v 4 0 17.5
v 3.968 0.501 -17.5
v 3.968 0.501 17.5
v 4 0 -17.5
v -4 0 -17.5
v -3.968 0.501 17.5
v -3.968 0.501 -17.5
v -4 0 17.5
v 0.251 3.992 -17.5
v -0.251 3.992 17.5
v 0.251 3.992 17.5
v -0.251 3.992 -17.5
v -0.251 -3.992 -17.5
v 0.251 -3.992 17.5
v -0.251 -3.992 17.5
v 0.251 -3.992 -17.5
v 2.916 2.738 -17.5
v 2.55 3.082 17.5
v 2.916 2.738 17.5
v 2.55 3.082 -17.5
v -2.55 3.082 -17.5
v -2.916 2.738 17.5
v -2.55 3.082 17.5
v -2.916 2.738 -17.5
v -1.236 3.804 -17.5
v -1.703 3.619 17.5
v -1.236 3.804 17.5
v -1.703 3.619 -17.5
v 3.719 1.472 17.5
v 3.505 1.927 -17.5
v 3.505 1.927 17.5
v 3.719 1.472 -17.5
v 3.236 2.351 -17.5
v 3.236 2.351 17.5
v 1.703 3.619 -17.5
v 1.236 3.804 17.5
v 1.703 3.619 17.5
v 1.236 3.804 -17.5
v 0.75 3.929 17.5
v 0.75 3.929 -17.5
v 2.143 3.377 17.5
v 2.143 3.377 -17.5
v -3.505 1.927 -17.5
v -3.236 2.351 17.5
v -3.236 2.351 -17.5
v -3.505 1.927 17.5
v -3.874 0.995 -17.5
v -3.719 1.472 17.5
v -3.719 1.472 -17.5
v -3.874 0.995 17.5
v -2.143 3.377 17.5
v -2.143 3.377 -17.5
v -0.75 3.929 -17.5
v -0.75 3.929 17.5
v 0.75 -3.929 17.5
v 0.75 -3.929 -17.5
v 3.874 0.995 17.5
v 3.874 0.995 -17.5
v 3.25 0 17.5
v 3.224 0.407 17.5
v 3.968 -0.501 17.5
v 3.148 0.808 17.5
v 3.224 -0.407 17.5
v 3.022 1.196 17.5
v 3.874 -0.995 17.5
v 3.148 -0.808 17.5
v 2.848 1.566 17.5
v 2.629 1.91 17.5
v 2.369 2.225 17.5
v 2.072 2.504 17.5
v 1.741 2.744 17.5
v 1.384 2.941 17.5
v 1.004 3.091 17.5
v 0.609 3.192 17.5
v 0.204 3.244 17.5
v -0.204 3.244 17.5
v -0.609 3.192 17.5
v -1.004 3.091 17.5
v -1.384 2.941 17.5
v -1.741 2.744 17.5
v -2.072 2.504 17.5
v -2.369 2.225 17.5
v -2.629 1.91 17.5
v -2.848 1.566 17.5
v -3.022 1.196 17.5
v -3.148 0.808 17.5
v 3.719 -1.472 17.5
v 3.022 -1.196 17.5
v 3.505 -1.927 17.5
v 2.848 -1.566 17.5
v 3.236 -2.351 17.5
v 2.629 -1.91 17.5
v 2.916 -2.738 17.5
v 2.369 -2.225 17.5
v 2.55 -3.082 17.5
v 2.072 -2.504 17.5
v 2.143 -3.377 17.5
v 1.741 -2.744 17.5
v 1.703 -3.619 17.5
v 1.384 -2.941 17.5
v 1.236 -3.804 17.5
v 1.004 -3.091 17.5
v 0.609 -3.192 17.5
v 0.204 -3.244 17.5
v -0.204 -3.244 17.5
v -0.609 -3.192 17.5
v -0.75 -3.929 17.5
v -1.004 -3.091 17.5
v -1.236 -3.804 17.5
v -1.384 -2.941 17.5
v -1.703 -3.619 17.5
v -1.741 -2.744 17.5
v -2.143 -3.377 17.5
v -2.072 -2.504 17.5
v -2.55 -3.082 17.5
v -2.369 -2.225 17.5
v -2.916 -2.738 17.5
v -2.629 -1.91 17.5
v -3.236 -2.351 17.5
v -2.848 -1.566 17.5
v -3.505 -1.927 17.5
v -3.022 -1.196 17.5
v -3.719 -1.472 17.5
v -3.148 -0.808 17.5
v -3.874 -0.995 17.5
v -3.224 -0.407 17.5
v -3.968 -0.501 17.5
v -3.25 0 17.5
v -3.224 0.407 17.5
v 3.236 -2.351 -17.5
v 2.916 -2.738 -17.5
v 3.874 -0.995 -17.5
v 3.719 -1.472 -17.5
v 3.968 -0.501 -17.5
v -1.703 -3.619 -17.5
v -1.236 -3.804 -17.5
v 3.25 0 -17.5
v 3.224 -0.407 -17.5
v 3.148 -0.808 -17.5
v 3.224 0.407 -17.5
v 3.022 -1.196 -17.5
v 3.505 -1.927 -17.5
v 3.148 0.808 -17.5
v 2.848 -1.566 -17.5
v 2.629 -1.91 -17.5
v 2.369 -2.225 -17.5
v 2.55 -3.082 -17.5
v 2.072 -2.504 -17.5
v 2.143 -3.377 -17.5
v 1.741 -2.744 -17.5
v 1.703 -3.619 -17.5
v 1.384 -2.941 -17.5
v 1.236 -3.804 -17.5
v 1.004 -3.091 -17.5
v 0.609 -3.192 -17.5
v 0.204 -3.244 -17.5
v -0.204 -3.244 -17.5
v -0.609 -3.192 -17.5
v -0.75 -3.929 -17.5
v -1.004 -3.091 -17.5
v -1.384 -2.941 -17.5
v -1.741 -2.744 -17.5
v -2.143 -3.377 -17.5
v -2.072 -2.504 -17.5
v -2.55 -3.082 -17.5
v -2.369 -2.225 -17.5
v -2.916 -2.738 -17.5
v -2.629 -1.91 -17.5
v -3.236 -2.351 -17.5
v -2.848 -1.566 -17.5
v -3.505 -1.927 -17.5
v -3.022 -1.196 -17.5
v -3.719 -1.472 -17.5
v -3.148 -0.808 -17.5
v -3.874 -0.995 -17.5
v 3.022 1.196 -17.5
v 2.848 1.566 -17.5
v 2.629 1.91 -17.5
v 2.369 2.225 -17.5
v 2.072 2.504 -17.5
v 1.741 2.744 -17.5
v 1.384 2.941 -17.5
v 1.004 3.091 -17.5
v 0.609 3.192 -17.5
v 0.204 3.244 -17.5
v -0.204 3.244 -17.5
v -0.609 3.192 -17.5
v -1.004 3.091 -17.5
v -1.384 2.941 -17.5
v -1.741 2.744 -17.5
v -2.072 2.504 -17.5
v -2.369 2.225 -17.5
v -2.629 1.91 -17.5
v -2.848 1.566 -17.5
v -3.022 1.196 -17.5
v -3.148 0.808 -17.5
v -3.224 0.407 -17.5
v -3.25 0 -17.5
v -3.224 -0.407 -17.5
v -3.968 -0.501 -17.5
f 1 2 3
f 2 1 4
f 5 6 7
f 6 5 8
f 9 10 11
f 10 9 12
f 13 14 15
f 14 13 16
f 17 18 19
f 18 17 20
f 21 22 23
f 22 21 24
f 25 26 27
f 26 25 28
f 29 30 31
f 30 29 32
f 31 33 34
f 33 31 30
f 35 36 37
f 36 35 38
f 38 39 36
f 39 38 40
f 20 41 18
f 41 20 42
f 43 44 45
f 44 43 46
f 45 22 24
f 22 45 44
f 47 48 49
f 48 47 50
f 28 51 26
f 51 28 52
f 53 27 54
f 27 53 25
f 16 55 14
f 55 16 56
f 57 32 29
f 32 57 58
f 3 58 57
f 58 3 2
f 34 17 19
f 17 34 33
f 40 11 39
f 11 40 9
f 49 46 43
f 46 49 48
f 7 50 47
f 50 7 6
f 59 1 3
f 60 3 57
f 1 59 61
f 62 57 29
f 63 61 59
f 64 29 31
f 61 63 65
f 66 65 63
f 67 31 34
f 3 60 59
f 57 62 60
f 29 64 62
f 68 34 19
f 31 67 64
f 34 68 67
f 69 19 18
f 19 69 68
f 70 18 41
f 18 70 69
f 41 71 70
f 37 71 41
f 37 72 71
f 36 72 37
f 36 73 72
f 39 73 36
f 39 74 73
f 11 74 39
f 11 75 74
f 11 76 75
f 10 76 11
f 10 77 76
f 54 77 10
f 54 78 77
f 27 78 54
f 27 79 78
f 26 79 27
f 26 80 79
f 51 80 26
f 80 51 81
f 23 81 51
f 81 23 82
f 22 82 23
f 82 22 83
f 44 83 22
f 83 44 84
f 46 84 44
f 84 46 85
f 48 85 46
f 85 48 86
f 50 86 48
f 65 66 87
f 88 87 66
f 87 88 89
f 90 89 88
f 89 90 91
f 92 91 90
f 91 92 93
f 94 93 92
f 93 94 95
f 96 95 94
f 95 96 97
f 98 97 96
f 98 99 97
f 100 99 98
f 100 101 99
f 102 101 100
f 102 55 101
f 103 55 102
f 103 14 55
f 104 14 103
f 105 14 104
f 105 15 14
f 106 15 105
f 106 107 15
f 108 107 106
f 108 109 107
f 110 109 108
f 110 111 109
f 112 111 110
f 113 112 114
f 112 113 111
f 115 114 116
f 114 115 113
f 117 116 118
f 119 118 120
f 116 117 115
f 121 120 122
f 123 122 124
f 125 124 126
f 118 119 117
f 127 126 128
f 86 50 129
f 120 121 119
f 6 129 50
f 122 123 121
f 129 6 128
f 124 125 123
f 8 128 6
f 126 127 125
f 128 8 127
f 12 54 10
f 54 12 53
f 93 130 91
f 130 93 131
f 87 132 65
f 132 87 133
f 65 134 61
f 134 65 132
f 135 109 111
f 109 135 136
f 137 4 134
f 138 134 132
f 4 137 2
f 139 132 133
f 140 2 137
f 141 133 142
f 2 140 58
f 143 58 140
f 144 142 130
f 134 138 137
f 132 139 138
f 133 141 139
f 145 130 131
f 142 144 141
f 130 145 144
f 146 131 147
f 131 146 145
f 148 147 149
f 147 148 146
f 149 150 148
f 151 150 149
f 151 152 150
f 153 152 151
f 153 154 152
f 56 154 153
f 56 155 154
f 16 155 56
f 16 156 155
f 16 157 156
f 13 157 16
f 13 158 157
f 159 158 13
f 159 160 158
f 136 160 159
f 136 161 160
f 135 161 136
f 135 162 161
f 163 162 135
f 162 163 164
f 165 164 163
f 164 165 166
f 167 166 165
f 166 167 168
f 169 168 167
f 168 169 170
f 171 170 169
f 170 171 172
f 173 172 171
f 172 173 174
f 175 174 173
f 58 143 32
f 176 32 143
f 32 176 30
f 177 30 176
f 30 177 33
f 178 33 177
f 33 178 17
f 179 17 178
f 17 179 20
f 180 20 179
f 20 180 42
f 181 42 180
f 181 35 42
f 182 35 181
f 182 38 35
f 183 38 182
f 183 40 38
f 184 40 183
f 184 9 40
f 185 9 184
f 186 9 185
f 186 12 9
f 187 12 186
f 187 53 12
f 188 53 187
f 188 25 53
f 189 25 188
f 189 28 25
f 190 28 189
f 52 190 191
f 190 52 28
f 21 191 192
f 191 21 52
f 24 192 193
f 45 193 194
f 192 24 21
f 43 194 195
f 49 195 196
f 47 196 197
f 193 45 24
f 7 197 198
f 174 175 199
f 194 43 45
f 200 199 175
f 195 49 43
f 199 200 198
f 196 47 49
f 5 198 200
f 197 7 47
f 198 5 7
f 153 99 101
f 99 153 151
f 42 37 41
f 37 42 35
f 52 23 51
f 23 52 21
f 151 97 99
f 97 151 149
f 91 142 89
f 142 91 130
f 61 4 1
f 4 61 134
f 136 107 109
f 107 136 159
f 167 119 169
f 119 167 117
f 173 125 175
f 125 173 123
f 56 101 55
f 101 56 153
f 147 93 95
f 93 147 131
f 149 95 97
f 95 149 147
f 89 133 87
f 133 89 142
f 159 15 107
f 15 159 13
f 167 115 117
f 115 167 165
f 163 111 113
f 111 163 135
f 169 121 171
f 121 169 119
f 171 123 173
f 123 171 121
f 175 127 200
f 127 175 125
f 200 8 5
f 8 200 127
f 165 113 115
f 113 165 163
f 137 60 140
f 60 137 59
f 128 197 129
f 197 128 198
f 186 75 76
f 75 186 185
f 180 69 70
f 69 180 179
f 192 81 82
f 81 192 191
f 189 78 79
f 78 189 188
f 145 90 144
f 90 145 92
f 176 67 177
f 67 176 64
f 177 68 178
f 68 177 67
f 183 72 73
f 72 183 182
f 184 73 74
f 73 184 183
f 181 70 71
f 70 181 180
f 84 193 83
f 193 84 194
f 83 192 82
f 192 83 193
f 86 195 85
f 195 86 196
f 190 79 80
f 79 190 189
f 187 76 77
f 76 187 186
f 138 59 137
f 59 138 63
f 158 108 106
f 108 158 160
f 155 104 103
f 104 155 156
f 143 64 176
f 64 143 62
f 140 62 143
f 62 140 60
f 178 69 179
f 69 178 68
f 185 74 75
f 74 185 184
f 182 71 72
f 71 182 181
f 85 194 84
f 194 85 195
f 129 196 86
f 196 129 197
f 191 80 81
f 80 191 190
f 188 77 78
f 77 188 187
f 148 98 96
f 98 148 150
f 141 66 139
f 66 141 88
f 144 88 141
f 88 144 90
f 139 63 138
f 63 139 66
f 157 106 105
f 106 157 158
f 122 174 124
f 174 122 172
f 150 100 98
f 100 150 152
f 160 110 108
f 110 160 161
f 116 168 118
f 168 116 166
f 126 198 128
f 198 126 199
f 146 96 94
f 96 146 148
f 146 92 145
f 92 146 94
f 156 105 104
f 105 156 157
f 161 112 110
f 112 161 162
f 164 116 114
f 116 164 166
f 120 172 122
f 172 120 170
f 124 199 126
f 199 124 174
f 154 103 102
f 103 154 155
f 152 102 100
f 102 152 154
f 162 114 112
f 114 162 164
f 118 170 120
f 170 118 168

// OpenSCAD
$fn = 50;


difference() {
	union() {
		translate(v = [0, 0, -17.5000000000]) {
			cylinder(h = 35, r = 4.0000000000);
		}
	}
	union() {
		translate(v = [0, 0, -100.0000000000]) {
			cylinder(h = 200, r = 3.2500000000);
		}
	}
}
